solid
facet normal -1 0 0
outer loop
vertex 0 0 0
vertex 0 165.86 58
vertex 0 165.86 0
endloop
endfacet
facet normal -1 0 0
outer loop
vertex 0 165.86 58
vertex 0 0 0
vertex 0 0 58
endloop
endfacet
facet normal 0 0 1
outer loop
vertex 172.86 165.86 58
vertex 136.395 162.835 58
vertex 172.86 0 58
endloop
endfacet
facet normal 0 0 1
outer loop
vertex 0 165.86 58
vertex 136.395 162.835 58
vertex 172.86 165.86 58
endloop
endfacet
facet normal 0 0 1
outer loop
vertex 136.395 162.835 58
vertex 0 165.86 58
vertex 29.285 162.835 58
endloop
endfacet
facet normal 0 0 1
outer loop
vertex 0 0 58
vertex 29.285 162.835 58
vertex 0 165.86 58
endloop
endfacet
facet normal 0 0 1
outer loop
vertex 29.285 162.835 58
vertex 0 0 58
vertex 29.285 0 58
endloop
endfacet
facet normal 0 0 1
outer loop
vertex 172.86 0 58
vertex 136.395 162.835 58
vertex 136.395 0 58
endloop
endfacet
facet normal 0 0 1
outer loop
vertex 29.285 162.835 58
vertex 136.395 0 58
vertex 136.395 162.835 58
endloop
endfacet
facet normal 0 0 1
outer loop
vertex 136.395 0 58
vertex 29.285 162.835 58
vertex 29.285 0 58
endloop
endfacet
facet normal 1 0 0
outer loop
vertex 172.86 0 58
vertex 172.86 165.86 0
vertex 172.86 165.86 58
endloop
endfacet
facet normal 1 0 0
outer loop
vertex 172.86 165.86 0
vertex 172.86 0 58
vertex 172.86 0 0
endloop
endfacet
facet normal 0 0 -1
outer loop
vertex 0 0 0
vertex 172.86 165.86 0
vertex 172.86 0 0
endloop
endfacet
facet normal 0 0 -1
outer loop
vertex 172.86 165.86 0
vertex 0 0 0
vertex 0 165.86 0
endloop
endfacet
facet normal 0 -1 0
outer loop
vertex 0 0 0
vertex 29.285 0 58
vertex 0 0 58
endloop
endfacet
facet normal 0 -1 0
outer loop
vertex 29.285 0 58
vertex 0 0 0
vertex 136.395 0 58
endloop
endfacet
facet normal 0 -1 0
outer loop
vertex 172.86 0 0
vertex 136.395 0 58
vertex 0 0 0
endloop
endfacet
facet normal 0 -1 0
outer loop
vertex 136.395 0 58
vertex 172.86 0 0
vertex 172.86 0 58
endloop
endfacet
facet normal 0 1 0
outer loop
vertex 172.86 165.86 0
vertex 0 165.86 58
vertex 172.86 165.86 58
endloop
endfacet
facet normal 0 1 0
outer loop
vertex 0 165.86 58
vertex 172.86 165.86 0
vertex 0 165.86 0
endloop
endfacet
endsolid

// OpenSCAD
// Opentrons Short Fixed Trash
// loadName: opentrons_1_trash_850ml_fixed
// Auto-generated by labware_to_stl.py from Opentrons V2 labware definition

$fn = 64;

difference() {
    // ── Labware body ──────────────────────────────────────────────
    cube([172.8600, 165.8600, 58.0000]);

    // ── Well cutouts ──────────────────────────────────────────────
    // Well A1
    translate([29.2850, -2.8350, 58.0000])
        cube([107.1100, 165.6700, 1.0000]);
}
